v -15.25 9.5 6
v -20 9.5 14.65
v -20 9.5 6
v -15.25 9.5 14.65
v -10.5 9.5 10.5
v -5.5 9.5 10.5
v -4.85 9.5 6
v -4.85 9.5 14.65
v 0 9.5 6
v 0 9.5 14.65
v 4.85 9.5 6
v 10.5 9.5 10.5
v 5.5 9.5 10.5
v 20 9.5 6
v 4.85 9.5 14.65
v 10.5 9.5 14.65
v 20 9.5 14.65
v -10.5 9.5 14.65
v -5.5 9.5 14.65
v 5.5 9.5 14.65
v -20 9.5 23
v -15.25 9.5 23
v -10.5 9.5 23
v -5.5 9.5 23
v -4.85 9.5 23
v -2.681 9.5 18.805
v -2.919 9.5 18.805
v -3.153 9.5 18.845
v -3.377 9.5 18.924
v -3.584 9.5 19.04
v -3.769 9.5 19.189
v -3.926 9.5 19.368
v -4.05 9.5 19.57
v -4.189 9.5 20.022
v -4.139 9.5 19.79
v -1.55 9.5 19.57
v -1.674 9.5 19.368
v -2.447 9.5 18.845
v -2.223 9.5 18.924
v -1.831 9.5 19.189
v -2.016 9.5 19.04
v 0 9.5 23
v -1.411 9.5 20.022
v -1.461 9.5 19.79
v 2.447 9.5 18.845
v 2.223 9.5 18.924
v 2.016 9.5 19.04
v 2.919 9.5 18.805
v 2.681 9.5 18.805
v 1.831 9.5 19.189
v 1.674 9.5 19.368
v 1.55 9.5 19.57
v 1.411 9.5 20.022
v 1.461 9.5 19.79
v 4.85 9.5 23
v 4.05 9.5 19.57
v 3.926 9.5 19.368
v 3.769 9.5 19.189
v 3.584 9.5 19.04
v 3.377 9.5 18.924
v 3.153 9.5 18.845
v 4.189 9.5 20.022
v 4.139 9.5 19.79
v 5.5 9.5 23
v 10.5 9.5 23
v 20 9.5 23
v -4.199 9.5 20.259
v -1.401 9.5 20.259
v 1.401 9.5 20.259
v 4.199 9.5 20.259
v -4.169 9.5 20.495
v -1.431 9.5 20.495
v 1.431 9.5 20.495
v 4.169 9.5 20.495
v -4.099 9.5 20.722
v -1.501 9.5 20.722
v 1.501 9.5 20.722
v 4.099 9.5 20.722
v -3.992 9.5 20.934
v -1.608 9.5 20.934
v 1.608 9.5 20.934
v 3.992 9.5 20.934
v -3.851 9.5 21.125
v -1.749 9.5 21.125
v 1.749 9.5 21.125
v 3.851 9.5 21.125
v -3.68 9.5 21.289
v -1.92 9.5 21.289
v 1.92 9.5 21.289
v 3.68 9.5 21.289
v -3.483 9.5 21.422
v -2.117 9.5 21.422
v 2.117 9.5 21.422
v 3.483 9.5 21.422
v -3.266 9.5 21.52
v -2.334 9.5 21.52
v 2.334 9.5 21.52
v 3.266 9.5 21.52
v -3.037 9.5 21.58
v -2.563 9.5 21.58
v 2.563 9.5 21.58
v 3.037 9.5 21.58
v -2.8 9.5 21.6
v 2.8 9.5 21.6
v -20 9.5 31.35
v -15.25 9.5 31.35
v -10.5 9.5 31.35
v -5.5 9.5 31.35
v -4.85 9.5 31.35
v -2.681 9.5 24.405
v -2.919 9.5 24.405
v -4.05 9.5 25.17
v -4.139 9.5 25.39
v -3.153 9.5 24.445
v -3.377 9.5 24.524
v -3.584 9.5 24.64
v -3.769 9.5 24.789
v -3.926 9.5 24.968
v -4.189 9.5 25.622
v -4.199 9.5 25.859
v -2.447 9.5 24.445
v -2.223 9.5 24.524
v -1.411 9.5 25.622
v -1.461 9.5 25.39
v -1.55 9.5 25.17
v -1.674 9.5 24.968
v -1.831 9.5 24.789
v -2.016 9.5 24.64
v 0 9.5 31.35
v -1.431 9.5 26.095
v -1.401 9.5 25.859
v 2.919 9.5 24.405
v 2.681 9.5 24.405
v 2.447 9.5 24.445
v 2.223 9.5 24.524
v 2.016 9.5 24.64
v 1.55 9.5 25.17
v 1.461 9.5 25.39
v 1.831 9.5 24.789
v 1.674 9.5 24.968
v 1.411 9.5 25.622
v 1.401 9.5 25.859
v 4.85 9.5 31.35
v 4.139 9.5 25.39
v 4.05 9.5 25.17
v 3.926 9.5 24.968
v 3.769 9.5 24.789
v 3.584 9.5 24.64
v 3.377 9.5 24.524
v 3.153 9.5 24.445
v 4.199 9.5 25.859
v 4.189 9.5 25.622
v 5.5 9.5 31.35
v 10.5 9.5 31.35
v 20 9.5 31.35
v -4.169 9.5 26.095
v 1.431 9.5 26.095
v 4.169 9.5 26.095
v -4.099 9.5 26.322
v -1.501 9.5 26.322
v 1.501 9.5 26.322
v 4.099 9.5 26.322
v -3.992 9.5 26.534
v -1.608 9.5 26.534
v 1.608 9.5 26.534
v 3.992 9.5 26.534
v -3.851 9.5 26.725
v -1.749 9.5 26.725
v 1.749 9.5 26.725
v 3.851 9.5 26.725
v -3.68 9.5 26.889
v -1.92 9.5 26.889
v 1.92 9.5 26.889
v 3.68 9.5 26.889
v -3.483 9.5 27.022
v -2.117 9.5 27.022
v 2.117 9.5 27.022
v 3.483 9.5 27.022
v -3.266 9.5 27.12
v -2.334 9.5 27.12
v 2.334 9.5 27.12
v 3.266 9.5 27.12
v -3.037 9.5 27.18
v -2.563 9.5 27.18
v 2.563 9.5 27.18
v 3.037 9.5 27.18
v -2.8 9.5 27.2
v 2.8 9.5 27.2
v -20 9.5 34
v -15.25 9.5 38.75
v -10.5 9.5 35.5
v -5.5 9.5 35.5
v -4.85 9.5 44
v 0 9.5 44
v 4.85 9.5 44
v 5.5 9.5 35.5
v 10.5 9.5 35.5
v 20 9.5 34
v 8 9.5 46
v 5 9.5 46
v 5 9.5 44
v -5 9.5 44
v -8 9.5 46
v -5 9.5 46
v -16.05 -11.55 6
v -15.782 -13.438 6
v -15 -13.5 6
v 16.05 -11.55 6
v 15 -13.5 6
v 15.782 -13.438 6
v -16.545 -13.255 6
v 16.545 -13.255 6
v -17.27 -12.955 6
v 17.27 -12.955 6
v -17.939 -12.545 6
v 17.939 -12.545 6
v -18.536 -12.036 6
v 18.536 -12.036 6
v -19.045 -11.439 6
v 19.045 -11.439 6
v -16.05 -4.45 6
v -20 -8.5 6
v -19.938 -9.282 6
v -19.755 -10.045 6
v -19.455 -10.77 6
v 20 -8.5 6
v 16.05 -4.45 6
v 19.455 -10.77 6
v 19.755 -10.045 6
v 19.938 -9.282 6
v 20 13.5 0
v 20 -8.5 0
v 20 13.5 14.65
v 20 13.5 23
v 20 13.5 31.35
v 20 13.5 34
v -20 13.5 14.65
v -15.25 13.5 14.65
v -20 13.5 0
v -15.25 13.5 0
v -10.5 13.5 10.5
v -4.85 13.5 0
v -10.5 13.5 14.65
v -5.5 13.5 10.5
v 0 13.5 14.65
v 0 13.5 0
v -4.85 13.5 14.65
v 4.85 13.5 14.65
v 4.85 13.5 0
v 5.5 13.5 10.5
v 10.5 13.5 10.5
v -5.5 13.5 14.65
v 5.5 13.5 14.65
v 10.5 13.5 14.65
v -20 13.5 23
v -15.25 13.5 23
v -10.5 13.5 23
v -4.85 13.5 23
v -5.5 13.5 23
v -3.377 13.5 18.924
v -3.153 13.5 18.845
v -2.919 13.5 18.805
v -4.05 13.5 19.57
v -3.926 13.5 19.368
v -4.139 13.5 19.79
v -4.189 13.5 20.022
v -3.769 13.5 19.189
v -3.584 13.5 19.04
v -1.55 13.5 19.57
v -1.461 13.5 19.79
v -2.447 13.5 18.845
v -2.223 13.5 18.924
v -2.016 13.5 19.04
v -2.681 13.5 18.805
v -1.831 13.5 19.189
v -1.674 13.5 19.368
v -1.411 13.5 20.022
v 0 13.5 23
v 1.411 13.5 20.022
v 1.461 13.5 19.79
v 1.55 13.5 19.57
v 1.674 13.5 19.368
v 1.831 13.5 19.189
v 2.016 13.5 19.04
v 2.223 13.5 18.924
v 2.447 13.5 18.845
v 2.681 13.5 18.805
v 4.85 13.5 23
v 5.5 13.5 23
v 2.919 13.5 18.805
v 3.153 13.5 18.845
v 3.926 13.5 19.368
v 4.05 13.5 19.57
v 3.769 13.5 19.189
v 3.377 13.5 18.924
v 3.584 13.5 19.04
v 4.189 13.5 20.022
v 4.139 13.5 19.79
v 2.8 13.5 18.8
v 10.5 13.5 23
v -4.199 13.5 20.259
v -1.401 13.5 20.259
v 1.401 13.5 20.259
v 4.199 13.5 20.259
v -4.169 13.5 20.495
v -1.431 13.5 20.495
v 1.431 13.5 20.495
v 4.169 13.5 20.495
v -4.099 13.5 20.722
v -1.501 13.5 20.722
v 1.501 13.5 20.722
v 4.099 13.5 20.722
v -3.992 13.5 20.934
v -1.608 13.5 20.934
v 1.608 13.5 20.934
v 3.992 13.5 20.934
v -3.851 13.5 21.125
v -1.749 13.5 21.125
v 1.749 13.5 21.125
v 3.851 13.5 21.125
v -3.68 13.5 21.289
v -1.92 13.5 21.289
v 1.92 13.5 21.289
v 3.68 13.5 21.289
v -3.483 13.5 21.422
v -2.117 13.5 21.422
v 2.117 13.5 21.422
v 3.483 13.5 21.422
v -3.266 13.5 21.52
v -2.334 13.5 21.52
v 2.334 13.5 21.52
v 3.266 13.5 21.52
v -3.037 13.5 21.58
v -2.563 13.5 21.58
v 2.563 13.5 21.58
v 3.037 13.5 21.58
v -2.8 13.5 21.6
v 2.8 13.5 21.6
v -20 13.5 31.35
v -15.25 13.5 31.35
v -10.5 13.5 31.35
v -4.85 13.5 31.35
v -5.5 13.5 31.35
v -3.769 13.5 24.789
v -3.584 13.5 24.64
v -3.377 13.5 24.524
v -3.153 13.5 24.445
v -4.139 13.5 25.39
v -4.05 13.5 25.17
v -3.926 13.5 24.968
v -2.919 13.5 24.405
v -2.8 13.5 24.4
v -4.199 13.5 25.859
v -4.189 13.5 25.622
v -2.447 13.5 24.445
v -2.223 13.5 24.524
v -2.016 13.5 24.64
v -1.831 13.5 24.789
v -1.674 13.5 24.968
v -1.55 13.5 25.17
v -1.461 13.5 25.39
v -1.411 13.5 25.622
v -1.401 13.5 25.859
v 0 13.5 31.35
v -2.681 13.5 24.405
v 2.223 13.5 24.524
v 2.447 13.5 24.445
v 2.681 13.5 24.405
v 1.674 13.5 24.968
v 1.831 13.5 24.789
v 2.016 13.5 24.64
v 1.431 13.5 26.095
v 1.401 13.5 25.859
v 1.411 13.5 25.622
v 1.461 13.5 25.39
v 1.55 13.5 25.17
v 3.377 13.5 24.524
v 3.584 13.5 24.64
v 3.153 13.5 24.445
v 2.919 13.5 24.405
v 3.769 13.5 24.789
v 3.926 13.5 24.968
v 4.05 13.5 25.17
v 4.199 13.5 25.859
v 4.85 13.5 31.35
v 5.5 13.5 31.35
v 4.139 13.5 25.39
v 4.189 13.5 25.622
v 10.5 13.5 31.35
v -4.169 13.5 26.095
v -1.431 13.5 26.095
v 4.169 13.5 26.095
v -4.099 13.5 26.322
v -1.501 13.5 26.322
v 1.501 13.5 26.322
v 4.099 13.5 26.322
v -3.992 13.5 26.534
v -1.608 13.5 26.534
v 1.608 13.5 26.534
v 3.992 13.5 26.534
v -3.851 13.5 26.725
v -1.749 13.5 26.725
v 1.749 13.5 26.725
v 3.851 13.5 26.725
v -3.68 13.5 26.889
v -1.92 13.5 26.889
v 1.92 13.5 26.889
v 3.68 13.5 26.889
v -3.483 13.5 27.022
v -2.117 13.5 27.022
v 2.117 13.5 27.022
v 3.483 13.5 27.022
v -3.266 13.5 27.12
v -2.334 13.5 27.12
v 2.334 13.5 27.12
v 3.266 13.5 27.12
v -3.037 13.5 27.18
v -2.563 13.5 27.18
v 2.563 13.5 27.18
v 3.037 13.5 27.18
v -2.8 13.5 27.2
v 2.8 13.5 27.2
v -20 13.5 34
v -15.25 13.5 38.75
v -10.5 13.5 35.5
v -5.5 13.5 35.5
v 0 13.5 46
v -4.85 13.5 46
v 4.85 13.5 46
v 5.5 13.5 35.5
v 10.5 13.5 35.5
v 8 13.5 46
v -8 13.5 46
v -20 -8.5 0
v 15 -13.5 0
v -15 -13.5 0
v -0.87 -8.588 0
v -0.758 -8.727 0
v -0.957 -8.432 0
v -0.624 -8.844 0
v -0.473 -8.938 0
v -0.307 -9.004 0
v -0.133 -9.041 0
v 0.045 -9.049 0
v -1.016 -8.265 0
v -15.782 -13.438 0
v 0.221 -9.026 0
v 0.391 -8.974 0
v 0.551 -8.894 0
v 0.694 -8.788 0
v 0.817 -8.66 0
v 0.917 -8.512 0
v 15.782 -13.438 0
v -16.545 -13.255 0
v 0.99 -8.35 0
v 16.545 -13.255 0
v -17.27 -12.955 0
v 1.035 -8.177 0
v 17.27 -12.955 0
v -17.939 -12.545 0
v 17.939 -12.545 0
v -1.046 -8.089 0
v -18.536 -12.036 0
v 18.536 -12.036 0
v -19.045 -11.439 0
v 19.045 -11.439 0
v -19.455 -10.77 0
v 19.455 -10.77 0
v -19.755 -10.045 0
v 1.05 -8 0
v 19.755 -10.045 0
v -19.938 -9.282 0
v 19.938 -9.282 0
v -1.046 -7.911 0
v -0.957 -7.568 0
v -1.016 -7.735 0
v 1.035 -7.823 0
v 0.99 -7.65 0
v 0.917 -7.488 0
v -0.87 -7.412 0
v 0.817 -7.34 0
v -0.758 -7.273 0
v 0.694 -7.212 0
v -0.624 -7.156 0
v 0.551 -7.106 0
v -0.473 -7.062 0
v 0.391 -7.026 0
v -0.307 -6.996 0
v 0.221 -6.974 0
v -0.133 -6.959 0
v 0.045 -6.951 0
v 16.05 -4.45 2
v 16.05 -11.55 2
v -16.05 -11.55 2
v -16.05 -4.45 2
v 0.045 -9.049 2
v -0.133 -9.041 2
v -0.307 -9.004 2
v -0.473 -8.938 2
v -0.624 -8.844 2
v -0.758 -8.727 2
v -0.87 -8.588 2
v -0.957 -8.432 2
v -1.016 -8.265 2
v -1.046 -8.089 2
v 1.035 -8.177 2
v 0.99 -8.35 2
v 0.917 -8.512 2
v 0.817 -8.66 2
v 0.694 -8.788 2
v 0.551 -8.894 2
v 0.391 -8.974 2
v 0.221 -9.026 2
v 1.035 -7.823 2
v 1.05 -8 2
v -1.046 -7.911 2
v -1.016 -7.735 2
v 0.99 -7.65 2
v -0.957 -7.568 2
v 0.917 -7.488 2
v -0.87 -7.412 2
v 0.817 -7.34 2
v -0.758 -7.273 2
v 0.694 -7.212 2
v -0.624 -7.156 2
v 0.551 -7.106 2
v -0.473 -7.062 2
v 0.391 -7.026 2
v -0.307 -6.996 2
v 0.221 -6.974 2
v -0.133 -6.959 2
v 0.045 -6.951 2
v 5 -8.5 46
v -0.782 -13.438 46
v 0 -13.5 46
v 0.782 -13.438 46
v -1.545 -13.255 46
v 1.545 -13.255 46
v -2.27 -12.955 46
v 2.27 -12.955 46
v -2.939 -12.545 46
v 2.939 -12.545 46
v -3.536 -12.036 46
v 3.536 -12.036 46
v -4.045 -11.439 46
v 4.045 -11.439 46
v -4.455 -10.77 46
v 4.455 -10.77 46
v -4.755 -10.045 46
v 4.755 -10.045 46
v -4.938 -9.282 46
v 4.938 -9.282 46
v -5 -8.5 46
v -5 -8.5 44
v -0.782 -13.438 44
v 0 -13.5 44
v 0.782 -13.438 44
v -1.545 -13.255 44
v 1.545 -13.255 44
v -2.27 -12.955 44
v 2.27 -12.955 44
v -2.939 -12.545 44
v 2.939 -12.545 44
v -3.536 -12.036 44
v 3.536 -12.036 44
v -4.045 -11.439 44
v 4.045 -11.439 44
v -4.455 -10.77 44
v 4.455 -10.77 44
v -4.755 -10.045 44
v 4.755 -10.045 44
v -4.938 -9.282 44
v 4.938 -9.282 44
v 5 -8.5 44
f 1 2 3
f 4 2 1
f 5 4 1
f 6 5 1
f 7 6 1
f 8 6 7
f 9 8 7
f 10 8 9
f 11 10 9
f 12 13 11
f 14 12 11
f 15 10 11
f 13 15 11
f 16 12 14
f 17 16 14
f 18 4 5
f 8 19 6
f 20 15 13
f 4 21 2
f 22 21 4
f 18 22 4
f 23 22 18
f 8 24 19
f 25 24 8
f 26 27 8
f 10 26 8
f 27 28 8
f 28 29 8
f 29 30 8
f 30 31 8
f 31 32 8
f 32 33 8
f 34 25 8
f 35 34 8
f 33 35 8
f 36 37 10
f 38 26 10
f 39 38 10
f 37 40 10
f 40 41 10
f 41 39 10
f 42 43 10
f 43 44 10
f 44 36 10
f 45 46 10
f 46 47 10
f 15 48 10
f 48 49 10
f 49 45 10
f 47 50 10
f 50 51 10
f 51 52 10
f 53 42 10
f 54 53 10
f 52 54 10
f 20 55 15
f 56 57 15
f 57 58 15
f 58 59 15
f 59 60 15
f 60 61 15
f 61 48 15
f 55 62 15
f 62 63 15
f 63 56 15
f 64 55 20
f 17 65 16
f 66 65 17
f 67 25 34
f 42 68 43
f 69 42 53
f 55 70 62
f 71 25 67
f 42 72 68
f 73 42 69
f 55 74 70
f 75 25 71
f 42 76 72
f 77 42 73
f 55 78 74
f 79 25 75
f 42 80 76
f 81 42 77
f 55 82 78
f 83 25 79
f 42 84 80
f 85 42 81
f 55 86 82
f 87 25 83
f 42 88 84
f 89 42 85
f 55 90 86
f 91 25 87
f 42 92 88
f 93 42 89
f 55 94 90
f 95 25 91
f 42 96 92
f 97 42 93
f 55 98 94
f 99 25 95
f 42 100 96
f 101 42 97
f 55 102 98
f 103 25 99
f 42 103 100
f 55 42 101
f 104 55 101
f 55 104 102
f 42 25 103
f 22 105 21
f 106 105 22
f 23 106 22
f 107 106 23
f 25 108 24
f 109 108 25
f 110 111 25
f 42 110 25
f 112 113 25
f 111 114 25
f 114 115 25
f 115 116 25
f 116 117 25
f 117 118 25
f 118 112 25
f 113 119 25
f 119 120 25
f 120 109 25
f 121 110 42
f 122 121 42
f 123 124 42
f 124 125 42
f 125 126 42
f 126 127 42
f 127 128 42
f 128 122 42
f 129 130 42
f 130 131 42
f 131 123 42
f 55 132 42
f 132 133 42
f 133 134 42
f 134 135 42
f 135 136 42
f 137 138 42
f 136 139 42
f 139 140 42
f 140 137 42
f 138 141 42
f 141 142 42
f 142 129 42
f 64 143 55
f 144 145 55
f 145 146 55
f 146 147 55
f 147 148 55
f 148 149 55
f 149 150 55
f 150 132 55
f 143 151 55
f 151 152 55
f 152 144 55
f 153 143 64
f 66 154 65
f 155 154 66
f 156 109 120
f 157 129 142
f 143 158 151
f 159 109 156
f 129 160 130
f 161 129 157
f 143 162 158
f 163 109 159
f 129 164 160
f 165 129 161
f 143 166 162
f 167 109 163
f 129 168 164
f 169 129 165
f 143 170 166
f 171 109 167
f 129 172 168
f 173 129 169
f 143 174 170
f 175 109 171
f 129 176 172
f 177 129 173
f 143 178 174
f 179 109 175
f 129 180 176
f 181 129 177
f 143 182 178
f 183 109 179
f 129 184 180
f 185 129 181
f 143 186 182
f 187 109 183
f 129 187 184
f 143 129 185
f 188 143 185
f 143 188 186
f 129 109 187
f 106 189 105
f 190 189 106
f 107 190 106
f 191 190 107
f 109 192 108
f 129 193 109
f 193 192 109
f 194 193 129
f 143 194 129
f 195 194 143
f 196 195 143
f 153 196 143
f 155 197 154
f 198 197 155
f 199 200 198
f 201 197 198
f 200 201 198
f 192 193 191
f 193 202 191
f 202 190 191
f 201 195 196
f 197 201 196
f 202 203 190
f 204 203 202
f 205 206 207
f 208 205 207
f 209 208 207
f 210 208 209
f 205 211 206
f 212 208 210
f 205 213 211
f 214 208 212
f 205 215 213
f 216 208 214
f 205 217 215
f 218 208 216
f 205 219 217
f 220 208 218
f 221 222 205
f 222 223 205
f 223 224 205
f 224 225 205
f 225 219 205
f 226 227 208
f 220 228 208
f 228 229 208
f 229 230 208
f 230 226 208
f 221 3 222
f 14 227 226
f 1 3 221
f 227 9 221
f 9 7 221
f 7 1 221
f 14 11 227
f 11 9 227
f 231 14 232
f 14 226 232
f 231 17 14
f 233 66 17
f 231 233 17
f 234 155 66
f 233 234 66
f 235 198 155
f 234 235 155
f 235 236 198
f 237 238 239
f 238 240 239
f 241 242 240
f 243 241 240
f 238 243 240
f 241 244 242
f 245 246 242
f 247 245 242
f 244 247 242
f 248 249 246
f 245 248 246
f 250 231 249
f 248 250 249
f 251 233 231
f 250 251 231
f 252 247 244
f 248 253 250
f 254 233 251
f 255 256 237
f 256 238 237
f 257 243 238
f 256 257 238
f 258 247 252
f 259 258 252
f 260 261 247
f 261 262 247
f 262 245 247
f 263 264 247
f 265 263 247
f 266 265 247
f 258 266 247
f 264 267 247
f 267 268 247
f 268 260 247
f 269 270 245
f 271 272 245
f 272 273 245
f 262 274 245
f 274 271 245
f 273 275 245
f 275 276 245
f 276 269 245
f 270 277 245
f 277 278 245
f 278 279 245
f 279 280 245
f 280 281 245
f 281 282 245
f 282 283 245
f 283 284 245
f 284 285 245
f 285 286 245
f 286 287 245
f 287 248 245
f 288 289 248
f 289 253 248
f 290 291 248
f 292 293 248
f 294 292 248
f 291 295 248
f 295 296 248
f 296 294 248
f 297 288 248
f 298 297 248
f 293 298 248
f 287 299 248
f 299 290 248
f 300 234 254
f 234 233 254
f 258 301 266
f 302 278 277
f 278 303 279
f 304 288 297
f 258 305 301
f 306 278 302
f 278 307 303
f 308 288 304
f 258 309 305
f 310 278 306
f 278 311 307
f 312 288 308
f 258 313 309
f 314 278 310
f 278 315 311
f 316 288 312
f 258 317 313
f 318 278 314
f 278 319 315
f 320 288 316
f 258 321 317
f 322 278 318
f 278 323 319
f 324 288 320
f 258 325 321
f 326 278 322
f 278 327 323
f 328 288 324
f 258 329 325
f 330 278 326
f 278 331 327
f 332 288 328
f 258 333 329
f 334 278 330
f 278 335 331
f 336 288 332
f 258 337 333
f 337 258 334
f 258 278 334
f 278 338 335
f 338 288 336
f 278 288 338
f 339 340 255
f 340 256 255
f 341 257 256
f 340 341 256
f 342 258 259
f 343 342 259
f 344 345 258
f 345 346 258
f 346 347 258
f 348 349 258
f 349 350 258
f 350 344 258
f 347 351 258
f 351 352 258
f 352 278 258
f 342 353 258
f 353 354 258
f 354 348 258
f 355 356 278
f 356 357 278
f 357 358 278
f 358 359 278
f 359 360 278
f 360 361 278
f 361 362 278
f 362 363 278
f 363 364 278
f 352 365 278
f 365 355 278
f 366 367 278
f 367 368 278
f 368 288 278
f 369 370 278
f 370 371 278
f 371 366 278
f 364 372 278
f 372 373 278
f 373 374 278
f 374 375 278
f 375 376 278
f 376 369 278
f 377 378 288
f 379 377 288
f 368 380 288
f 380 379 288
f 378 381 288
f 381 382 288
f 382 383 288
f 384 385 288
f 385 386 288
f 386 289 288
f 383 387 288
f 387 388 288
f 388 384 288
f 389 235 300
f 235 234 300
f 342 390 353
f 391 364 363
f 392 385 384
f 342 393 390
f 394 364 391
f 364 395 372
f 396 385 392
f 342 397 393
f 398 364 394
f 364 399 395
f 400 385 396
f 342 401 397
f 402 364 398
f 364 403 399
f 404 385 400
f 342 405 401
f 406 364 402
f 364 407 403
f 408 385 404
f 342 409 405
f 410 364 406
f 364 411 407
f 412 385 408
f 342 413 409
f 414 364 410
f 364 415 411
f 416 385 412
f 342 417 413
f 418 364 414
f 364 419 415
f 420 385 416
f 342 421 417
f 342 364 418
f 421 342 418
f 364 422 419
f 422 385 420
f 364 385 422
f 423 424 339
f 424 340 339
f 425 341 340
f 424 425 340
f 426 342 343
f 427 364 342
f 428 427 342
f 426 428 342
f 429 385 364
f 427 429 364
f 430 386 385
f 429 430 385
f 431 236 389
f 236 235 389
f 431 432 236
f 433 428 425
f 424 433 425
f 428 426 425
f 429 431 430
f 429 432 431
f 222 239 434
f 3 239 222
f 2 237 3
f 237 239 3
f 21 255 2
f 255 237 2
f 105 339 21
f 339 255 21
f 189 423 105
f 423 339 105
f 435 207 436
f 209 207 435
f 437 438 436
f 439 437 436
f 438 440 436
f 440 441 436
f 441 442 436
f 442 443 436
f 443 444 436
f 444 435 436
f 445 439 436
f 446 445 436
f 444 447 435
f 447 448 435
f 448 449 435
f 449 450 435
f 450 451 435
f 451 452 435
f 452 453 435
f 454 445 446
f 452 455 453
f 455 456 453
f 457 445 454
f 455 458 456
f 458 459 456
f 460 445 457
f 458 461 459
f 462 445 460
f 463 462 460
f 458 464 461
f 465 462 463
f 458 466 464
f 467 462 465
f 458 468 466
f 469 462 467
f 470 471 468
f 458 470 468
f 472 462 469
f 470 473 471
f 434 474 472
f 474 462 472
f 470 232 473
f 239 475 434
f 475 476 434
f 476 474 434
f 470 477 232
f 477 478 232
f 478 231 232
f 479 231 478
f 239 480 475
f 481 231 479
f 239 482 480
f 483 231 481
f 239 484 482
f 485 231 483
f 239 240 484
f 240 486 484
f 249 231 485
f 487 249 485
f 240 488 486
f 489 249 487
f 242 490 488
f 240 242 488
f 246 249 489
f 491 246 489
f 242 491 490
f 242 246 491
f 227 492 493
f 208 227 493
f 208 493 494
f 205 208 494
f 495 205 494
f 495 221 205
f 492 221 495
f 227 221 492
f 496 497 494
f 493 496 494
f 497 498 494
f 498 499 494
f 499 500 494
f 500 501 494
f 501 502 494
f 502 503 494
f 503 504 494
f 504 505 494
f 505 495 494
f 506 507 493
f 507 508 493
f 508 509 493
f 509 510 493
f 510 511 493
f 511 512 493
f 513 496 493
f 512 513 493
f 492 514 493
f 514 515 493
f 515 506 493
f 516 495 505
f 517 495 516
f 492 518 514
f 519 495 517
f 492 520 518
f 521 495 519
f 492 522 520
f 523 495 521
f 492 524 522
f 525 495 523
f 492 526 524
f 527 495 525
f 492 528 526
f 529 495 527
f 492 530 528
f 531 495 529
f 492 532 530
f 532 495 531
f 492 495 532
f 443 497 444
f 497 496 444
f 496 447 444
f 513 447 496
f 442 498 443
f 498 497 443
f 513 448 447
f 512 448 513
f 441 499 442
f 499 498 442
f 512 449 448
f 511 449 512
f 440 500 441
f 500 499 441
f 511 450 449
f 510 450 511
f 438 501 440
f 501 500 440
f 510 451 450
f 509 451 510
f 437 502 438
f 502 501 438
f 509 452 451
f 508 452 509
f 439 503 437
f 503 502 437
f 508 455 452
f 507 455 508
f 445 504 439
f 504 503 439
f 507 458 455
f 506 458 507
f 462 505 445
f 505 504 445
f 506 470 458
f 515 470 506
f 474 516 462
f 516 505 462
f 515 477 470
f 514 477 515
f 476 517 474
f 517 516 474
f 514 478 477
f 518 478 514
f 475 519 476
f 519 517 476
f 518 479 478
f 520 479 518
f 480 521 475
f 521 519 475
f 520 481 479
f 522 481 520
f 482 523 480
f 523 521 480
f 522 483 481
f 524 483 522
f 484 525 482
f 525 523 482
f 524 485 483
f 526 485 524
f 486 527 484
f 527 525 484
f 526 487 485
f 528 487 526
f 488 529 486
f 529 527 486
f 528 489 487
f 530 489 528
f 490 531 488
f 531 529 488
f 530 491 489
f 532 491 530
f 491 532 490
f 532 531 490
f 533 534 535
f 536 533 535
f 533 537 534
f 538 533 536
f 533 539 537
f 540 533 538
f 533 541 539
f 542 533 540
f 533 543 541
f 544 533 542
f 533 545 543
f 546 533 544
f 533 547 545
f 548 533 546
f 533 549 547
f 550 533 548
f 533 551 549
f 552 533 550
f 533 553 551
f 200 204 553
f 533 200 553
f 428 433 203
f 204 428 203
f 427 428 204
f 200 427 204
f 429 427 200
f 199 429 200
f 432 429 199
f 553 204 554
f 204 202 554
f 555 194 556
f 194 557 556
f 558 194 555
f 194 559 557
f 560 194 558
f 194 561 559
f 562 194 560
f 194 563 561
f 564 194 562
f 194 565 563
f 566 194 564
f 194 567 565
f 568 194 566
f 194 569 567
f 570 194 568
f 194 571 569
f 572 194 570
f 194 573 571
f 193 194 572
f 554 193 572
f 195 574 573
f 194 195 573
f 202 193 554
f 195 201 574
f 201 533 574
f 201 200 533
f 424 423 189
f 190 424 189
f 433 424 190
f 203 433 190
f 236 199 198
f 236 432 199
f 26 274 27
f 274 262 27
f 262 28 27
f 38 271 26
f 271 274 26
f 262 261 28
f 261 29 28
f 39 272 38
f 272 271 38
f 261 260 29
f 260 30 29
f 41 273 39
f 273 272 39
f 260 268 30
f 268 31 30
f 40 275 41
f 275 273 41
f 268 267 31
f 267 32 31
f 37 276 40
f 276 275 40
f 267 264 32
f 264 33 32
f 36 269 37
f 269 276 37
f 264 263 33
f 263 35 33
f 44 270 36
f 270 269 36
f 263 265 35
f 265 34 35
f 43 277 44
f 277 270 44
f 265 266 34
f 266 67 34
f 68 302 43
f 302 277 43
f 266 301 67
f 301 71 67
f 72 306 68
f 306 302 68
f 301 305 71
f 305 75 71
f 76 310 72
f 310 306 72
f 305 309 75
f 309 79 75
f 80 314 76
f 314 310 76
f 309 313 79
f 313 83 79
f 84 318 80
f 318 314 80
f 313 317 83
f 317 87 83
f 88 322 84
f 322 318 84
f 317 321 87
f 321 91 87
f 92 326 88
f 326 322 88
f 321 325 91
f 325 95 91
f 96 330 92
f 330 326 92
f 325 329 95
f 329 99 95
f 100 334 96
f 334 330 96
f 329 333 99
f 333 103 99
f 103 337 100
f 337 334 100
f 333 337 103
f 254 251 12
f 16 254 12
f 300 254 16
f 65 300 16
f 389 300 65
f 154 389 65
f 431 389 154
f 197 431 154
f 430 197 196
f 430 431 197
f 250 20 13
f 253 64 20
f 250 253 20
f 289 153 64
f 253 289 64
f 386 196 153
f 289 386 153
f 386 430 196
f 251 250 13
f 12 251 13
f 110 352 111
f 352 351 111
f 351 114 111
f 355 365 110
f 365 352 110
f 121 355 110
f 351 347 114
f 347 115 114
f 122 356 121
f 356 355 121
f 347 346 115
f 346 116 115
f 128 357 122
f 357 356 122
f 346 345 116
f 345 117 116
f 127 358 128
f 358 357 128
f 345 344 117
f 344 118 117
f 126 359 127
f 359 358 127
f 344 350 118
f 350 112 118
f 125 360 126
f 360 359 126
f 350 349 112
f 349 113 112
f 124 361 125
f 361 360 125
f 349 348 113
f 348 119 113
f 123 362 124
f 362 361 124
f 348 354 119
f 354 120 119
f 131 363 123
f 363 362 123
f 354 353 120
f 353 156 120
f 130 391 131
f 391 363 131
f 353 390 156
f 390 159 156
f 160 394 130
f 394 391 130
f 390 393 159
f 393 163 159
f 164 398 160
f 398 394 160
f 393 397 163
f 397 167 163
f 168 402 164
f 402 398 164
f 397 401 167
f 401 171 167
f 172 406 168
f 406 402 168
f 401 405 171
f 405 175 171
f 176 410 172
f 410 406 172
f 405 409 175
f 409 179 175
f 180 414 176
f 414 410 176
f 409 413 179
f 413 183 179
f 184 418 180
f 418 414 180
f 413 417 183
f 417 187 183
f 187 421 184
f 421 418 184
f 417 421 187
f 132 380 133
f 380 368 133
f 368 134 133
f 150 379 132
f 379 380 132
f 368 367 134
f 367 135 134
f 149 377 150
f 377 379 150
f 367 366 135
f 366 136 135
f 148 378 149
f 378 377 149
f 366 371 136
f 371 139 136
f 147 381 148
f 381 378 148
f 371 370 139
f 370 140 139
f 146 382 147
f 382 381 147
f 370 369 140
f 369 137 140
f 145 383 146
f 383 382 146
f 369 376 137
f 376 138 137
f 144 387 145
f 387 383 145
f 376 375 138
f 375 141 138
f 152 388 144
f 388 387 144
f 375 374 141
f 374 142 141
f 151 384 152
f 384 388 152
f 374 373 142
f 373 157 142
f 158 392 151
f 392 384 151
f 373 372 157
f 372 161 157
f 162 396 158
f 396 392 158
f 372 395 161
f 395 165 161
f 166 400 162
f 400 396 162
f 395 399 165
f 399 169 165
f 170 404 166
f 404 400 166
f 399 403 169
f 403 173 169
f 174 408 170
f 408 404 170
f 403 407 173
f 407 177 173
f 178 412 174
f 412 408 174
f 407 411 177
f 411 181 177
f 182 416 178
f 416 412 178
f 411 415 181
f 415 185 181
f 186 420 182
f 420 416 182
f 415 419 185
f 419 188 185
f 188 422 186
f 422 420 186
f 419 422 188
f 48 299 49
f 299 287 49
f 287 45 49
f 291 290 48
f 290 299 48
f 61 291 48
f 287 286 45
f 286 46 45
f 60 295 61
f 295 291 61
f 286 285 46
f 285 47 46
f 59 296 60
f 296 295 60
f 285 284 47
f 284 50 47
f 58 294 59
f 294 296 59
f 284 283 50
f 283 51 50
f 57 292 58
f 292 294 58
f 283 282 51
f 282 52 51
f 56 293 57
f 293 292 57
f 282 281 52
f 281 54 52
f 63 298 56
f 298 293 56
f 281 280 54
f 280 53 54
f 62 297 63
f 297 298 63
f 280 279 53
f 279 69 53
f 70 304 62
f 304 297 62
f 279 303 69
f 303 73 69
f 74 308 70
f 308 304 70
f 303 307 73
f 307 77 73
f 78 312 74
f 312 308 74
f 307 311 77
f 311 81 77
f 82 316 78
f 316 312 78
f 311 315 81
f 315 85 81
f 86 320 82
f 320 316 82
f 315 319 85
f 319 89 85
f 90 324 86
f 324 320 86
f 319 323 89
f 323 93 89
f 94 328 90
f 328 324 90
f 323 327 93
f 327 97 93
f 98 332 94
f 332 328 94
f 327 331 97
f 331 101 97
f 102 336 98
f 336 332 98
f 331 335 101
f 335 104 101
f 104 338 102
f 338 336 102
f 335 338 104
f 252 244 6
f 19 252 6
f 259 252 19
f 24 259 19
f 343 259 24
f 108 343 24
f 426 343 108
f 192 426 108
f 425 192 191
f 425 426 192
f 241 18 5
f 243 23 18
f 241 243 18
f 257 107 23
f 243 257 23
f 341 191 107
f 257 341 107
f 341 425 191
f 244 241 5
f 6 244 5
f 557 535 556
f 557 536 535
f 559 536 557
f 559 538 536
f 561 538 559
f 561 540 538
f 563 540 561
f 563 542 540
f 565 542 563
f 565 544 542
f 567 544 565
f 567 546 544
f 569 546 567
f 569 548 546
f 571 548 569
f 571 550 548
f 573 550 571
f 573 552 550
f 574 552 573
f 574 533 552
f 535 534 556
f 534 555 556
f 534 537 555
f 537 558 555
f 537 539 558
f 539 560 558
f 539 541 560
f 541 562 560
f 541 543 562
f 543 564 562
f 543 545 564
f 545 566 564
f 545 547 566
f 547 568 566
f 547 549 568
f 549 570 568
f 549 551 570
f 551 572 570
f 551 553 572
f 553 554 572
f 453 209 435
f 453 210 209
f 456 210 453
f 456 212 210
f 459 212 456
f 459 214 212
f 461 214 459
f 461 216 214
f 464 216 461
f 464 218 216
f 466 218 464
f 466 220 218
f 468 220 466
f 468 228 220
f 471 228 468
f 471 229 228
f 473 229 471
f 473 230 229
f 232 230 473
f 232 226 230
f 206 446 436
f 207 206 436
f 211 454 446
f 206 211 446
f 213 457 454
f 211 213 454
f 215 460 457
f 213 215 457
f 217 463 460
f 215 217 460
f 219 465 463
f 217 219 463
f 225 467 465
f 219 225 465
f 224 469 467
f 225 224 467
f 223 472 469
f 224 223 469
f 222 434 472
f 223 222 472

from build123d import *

# Parameters (mm, degrees)
SCHIZZO3_W                   = 40
SCHIZZO3_H                   = 27
ESTRUSIONE_ESTRUSIONE1_DEPTH = 6
SCHIZZO4_W                   = 32.1
SCHIZZO4_H                   = 7.1
TAGLIO_ESTRUSIONE1_DEPTH     = 4
SCHIZZO5_R                   = 1.05
TAGLIO_ESTRUSIONE2_DEPTH     = 25.459149617
SCHIZZO6_W                   = 40
SCHIZZO6_H                   = 4
ESTRUSIONE_ESTRUSIONE2_DEPTH = 40
SCHIZZO7_W                   = 10
SCHIZZO7_H                   = 2
ESTRUSIONE_ESTRUSIONE3_DEPTH = 23
SCHIZZO8_R                   = 1.4
SCHIZZO8_W                   = 5
SCHIZZO8_H                   = 25
TAGLIO_ESTRUSIONE3_DEPTH     = 57.964901475
RACCORDO1_R                  = 5


with BuildPart() as part:
    # Schizzo3 → Estrusione-Estrusione1 (new body)
    with BuildSketch(Plane.XY):
        Rectangle(SCHIZZO3_W, SCHIZZO3_H)
    extrude(amount=ESTRUSIONE_ESTRUSIONE1_DEPTH)

    # Schizzo4 → Taglio-Estrusione1 (cut)
    with BuildSketch(Plane.XY.offset(6)):
        with Locations((0, -8)):
            Rectangle(SCHIZZO4_W, SCHIZZO4_H)
    extrude(amount=-TAGLIO_ESTRUSIONE1_DEPTH, mode=Mode.SUBTRACT)

    # Schizzo5 → Taglio-Estrusione2 (cut, through all)
    with BuildSketch(Plane.XY.offset(2)):
        with Locations((0, -8)):
            Circle(SCHIZZO5_R)
    extrude(amount=-TAGLIO_ESTRUSIONE2_DEPTH, mode=Mode.SUBTRACT)

    # Schizzo6 → Estrusione-Estrusione2 (add)
    with BuildSketch(Plane.XY.offset(6)):
        with Locations((0, 11.5)):
            Rectangle(SCHIZZO6_W, SCHIZZO6_H)
    extrude(amount=ESTRUSIONE_ESTRUSIONE2_DEPTH)

    # Schizzo7 → Estrusione-Estrusione3 (add)
    with BuildSketch(Plane.XZ.offset(-9.5)):
        with Locations((0, 45)):
            Rectangle(SCHIZZO7_W, SCHIZZO7_H)
    extrude(amount=ESTRUSIONE_ESTRUSIONE3_DEPTH)

    # Schizzo8 → Taglio-Estrusione3 (cut, through all)
    with BuildSketch(Plane(origin=(0, 13.5, 0), x_dir=(1, 0, 0), z_dir=(0, 1, 0))):
        with Locations(Location((-2.8, -20.2, 0), (0, 0, 270))):
            Circle(SCHIZZO8_R)
        with Locations(Location((-2.8, -25.8, 0), (0, 0, 270))):
            Circle(SCHIZZO8_R)
        with Locations(Location((2.8, -25.8, 0), (0, 0, 270))):
            Circle(SCHIZZO8_R)
        with Locations(Location((2.8, -20.2, 0), (0, 0, 270))):
            Circle(SCHIZZO8_R)
        with Locations((8, -23)):
            Rectangle(SCHIZZO8_W, SCHIZZO8_H)
        with Locations((-8, -23)):
            Rectangle(SCHIZZO8_W, SCHIZZO8_H)
        Polygon((-20, -34), (-8, -46), (-20, -46), align=None)
        Polygon((8, -46), (20, -46), (20, -34), align=None)
    extrude(amount=-TAGLIO_ESTRUSIONE3_DEPTH, mode=Mode.SUBTRACT)

    # Raccordo1
    raccordo1_edges = [part.edges().sort_by_distance(p)[0] for p in [
        (-5, -13.5, 45),
        (5, -13.5, 45),
        (20, -13.5, 3),
        (-20, -13.5, 3),
    ]]
    fillet(raccordo1_edges, radius=RACCORDO1_R - 0.0001)  # a hair under: the kernel refuses the full size


solid = part.part
